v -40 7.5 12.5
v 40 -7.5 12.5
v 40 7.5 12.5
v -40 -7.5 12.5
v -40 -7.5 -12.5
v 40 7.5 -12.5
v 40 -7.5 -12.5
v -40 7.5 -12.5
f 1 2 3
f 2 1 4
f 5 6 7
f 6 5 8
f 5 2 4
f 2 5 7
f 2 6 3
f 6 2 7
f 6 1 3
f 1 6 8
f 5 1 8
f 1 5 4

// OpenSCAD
// ========================================
// a 80 x 15 x 25 mm box
// NeuroCAD canonical IR; dimensions are millimetres
// ========================================
$fn = 48;

cube(size=[80, 15, 25], center=true);
